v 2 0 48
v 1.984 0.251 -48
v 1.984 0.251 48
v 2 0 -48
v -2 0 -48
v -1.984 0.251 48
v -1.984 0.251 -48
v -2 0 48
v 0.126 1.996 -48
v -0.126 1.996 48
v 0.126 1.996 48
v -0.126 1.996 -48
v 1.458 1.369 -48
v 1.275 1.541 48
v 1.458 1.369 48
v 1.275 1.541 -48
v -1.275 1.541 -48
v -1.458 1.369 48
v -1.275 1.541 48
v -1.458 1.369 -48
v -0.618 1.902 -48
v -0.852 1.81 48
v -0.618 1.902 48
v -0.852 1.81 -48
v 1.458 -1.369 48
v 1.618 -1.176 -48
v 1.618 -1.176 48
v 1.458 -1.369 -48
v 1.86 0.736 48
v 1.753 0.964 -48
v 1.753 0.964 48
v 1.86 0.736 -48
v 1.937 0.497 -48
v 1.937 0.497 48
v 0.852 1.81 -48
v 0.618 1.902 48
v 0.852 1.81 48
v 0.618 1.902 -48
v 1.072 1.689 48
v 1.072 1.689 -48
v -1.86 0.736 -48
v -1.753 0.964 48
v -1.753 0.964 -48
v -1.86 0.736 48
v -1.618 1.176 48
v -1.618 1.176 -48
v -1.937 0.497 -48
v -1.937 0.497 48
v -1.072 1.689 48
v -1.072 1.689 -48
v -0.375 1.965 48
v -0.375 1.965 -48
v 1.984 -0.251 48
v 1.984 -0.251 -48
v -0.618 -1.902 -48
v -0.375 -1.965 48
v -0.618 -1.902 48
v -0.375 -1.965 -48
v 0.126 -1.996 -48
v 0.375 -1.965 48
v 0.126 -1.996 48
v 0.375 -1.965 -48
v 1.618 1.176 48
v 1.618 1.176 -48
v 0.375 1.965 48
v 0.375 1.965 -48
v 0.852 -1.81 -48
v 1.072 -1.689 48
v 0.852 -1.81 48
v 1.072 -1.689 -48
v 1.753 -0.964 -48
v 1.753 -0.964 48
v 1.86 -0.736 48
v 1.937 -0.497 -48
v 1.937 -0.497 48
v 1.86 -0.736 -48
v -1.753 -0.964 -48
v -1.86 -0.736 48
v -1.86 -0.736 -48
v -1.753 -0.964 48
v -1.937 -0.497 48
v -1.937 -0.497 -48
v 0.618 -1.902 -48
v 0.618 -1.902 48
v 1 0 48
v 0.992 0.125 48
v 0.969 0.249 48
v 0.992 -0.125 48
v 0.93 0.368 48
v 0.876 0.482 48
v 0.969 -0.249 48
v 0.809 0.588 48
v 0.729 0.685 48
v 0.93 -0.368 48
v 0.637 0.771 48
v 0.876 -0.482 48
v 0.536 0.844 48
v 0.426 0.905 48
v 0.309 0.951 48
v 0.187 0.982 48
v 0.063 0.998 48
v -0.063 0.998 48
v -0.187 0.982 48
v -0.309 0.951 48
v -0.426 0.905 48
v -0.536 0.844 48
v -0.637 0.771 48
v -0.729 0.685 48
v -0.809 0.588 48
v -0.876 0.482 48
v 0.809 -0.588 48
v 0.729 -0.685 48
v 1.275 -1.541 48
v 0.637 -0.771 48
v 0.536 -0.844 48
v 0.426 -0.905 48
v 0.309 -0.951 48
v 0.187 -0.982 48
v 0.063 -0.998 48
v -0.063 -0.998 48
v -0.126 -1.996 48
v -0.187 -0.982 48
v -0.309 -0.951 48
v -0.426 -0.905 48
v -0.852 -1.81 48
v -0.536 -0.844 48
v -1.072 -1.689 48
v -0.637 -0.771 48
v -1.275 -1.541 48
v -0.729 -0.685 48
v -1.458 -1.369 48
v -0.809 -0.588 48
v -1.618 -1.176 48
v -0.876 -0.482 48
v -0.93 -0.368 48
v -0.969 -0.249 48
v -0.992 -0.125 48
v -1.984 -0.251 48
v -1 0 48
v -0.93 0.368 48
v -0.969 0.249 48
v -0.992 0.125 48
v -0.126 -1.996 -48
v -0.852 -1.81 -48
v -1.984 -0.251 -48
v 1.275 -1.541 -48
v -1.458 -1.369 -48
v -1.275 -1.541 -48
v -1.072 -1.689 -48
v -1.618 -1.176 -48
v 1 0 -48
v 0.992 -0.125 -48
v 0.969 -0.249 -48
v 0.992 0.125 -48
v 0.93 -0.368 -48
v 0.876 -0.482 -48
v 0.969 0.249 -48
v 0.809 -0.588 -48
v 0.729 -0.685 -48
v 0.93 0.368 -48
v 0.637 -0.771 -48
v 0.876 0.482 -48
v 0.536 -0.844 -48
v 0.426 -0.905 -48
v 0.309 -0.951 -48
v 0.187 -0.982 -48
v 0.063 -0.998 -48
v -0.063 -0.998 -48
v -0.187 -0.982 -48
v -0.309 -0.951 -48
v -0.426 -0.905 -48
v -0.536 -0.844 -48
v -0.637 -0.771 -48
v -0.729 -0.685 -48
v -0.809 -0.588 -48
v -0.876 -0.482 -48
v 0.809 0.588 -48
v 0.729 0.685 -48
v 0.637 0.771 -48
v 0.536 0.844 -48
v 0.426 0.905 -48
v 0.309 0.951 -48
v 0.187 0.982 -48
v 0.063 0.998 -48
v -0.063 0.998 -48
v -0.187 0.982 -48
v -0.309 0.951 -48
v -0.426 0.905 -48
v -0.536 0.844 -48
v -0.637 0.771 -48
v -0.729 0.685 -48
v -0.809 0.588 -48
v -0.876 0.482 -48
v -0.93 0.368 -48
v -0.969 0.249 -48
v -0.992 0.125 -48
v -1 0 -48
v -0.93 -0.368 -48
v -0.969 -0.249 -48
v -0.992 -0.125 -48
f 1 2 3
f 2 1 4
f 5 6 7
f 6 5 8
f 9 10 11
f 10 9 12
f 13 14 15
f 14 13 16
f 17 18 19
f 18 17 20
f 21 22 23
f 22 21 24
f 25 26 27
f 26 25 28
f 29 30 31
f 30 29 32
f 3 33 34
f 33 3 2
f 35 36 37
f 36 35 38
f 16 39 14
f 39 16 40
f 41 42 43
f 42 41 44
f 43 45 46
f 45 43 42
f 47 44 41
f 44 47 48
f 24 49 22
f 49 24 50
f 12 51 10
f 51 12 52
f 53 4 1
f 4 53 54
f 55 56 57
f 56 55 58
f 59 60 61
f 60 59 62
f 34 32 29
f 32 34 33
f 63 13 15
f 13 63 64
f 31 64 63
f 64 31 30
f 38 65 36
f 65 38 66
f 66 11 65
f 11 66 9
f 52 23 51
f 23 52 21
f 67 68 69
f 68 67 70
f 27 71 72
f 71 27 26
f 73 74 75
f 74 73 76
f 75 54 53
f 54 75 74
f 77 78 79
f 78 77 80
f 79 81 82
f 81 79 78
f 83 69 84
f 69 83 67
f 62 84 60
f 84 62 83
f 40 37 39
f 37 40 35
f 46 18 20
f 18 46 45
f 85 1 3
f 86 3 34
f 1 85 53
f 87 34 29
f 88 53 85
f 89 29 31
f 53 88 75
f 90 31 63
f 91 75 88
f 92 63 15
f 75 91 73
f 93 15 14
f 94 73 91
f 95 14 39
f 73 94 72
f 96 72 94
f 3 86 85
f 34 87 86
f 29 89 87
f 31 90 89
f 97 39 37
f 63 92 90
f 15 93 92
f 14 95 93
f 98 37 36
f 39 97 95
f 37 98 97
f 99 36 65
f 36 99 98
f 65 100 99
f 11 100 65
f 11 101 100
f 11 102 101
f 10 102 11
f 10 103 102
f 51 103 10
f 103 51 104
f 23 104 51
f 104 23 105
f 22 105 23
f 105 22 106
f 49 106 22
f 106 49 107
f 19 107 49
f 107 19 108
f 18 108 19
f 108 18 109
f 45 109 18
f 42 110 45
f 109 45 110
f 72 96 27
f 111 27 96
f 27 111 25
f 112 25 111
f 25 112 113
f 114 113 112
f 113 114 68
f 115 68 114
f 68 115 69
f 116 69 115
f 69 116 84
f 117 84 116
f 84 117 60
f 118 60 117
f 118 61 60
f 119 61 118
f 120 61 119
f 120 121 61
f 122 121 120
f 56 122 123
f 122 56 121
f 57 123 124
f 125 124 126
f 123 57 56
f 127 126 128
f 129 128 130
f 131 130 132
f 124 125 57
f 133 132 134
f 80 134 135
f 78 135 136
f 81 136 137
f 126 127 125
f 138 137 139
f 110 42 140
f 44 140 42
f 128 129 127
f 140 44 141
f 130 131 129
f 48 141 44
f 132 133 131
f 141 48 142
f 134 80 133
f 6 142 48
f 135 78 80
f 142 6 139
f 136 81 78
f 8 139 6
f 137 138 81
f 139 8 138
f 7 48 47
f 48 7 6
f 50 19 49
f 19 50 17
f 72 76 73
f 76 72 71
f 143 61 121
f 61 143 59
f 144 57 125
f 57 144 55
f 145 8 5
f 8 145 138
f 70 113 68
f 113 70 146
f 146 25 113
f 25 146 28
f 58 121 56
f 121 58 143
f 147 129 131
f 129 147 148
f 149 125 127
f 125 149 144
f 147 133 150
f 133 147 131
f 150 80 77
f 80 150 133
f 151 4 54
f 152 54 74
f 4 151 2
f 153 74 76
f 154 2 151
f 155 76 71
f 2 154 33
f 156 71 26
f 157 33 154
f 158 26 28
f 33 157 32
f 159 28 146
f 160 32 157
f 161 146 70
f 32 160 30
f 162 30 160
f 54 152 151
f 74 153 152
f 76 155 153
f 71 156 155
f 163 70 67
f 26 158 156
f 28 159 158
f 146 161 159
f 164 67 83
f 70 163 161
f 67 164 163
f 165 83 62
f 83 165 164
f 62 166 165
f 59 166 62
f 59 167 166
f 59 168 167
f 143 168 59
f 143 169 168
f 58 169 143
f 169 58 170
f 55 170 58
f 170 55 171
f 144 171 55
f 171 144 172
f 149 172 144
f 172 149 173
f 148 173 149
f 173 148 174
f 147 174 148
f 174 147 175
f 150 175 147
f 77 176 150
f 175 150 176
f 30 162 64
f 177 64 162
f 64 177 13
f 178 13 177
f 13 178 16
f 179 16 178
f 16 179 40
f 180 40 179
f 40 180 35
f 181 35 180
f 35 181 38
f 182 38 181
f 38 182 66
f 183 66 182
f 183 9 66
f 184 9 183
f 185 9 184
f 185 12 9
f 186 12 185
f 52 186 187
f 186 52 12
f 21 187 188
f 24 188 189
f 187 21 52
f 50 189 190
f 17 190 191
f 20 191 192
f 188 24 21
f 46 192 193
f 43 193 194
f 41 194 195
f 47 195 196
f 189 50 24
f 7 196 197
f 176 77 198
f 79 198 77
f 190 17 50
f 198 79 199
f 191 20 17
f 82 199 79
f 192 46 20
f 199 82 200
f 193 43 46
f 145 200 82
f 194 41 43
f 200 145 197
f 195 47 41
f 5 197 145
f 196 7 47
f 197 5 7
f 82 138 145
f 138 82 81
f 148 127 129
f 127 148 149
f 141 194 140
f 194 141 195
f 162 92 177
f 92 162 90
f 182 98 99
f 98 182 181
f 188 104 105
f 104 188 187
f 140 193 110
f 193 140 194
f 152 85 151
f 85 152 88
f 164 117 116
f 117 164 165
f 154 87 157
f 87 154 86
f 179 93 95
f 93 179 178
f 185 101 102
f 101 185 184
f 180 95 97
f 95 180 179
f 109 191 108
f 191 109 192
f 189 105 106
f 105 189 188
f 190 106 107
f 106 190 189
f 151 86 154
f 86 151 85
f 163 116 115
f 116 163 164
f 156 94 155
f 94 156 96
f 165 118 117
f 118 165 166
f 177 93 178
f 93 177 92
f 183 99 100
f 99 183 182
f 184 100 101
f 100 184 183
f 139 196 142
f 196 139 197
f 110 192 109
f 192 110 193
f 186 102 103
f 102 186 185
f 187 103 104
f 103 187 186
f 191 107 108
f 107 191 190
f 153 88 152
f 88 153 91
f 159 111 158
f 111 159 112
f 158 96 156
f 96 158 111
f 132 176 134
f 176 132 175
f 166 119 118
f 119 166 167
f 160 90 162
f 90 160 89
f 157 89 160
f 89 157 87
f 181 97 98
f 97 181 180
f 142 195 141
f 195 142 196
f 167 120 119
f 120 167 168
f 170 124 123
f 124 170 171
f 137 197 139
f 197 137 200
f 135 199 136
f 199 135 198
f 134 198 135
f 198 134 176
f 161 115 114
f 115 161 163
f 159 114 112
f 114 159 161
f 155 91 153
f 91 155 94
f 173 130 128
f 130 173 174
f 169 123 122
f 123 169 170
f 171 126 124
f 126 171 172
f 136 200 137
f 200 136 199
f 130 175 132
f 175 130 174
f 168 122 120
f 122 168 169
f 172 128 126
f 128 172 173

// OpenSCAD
$fn = 50;


difference() {
	union() {
		translate(v = [0, 0, -48.0000000000]) {
			cylinder(h = 96, r = 2.0000000000);
		}
	}
	union() {
		translate(v = [0, 0, -100.0000000000]) {
			cylinder(h = 200, r = 1.0000000000);
		}
	}
}
